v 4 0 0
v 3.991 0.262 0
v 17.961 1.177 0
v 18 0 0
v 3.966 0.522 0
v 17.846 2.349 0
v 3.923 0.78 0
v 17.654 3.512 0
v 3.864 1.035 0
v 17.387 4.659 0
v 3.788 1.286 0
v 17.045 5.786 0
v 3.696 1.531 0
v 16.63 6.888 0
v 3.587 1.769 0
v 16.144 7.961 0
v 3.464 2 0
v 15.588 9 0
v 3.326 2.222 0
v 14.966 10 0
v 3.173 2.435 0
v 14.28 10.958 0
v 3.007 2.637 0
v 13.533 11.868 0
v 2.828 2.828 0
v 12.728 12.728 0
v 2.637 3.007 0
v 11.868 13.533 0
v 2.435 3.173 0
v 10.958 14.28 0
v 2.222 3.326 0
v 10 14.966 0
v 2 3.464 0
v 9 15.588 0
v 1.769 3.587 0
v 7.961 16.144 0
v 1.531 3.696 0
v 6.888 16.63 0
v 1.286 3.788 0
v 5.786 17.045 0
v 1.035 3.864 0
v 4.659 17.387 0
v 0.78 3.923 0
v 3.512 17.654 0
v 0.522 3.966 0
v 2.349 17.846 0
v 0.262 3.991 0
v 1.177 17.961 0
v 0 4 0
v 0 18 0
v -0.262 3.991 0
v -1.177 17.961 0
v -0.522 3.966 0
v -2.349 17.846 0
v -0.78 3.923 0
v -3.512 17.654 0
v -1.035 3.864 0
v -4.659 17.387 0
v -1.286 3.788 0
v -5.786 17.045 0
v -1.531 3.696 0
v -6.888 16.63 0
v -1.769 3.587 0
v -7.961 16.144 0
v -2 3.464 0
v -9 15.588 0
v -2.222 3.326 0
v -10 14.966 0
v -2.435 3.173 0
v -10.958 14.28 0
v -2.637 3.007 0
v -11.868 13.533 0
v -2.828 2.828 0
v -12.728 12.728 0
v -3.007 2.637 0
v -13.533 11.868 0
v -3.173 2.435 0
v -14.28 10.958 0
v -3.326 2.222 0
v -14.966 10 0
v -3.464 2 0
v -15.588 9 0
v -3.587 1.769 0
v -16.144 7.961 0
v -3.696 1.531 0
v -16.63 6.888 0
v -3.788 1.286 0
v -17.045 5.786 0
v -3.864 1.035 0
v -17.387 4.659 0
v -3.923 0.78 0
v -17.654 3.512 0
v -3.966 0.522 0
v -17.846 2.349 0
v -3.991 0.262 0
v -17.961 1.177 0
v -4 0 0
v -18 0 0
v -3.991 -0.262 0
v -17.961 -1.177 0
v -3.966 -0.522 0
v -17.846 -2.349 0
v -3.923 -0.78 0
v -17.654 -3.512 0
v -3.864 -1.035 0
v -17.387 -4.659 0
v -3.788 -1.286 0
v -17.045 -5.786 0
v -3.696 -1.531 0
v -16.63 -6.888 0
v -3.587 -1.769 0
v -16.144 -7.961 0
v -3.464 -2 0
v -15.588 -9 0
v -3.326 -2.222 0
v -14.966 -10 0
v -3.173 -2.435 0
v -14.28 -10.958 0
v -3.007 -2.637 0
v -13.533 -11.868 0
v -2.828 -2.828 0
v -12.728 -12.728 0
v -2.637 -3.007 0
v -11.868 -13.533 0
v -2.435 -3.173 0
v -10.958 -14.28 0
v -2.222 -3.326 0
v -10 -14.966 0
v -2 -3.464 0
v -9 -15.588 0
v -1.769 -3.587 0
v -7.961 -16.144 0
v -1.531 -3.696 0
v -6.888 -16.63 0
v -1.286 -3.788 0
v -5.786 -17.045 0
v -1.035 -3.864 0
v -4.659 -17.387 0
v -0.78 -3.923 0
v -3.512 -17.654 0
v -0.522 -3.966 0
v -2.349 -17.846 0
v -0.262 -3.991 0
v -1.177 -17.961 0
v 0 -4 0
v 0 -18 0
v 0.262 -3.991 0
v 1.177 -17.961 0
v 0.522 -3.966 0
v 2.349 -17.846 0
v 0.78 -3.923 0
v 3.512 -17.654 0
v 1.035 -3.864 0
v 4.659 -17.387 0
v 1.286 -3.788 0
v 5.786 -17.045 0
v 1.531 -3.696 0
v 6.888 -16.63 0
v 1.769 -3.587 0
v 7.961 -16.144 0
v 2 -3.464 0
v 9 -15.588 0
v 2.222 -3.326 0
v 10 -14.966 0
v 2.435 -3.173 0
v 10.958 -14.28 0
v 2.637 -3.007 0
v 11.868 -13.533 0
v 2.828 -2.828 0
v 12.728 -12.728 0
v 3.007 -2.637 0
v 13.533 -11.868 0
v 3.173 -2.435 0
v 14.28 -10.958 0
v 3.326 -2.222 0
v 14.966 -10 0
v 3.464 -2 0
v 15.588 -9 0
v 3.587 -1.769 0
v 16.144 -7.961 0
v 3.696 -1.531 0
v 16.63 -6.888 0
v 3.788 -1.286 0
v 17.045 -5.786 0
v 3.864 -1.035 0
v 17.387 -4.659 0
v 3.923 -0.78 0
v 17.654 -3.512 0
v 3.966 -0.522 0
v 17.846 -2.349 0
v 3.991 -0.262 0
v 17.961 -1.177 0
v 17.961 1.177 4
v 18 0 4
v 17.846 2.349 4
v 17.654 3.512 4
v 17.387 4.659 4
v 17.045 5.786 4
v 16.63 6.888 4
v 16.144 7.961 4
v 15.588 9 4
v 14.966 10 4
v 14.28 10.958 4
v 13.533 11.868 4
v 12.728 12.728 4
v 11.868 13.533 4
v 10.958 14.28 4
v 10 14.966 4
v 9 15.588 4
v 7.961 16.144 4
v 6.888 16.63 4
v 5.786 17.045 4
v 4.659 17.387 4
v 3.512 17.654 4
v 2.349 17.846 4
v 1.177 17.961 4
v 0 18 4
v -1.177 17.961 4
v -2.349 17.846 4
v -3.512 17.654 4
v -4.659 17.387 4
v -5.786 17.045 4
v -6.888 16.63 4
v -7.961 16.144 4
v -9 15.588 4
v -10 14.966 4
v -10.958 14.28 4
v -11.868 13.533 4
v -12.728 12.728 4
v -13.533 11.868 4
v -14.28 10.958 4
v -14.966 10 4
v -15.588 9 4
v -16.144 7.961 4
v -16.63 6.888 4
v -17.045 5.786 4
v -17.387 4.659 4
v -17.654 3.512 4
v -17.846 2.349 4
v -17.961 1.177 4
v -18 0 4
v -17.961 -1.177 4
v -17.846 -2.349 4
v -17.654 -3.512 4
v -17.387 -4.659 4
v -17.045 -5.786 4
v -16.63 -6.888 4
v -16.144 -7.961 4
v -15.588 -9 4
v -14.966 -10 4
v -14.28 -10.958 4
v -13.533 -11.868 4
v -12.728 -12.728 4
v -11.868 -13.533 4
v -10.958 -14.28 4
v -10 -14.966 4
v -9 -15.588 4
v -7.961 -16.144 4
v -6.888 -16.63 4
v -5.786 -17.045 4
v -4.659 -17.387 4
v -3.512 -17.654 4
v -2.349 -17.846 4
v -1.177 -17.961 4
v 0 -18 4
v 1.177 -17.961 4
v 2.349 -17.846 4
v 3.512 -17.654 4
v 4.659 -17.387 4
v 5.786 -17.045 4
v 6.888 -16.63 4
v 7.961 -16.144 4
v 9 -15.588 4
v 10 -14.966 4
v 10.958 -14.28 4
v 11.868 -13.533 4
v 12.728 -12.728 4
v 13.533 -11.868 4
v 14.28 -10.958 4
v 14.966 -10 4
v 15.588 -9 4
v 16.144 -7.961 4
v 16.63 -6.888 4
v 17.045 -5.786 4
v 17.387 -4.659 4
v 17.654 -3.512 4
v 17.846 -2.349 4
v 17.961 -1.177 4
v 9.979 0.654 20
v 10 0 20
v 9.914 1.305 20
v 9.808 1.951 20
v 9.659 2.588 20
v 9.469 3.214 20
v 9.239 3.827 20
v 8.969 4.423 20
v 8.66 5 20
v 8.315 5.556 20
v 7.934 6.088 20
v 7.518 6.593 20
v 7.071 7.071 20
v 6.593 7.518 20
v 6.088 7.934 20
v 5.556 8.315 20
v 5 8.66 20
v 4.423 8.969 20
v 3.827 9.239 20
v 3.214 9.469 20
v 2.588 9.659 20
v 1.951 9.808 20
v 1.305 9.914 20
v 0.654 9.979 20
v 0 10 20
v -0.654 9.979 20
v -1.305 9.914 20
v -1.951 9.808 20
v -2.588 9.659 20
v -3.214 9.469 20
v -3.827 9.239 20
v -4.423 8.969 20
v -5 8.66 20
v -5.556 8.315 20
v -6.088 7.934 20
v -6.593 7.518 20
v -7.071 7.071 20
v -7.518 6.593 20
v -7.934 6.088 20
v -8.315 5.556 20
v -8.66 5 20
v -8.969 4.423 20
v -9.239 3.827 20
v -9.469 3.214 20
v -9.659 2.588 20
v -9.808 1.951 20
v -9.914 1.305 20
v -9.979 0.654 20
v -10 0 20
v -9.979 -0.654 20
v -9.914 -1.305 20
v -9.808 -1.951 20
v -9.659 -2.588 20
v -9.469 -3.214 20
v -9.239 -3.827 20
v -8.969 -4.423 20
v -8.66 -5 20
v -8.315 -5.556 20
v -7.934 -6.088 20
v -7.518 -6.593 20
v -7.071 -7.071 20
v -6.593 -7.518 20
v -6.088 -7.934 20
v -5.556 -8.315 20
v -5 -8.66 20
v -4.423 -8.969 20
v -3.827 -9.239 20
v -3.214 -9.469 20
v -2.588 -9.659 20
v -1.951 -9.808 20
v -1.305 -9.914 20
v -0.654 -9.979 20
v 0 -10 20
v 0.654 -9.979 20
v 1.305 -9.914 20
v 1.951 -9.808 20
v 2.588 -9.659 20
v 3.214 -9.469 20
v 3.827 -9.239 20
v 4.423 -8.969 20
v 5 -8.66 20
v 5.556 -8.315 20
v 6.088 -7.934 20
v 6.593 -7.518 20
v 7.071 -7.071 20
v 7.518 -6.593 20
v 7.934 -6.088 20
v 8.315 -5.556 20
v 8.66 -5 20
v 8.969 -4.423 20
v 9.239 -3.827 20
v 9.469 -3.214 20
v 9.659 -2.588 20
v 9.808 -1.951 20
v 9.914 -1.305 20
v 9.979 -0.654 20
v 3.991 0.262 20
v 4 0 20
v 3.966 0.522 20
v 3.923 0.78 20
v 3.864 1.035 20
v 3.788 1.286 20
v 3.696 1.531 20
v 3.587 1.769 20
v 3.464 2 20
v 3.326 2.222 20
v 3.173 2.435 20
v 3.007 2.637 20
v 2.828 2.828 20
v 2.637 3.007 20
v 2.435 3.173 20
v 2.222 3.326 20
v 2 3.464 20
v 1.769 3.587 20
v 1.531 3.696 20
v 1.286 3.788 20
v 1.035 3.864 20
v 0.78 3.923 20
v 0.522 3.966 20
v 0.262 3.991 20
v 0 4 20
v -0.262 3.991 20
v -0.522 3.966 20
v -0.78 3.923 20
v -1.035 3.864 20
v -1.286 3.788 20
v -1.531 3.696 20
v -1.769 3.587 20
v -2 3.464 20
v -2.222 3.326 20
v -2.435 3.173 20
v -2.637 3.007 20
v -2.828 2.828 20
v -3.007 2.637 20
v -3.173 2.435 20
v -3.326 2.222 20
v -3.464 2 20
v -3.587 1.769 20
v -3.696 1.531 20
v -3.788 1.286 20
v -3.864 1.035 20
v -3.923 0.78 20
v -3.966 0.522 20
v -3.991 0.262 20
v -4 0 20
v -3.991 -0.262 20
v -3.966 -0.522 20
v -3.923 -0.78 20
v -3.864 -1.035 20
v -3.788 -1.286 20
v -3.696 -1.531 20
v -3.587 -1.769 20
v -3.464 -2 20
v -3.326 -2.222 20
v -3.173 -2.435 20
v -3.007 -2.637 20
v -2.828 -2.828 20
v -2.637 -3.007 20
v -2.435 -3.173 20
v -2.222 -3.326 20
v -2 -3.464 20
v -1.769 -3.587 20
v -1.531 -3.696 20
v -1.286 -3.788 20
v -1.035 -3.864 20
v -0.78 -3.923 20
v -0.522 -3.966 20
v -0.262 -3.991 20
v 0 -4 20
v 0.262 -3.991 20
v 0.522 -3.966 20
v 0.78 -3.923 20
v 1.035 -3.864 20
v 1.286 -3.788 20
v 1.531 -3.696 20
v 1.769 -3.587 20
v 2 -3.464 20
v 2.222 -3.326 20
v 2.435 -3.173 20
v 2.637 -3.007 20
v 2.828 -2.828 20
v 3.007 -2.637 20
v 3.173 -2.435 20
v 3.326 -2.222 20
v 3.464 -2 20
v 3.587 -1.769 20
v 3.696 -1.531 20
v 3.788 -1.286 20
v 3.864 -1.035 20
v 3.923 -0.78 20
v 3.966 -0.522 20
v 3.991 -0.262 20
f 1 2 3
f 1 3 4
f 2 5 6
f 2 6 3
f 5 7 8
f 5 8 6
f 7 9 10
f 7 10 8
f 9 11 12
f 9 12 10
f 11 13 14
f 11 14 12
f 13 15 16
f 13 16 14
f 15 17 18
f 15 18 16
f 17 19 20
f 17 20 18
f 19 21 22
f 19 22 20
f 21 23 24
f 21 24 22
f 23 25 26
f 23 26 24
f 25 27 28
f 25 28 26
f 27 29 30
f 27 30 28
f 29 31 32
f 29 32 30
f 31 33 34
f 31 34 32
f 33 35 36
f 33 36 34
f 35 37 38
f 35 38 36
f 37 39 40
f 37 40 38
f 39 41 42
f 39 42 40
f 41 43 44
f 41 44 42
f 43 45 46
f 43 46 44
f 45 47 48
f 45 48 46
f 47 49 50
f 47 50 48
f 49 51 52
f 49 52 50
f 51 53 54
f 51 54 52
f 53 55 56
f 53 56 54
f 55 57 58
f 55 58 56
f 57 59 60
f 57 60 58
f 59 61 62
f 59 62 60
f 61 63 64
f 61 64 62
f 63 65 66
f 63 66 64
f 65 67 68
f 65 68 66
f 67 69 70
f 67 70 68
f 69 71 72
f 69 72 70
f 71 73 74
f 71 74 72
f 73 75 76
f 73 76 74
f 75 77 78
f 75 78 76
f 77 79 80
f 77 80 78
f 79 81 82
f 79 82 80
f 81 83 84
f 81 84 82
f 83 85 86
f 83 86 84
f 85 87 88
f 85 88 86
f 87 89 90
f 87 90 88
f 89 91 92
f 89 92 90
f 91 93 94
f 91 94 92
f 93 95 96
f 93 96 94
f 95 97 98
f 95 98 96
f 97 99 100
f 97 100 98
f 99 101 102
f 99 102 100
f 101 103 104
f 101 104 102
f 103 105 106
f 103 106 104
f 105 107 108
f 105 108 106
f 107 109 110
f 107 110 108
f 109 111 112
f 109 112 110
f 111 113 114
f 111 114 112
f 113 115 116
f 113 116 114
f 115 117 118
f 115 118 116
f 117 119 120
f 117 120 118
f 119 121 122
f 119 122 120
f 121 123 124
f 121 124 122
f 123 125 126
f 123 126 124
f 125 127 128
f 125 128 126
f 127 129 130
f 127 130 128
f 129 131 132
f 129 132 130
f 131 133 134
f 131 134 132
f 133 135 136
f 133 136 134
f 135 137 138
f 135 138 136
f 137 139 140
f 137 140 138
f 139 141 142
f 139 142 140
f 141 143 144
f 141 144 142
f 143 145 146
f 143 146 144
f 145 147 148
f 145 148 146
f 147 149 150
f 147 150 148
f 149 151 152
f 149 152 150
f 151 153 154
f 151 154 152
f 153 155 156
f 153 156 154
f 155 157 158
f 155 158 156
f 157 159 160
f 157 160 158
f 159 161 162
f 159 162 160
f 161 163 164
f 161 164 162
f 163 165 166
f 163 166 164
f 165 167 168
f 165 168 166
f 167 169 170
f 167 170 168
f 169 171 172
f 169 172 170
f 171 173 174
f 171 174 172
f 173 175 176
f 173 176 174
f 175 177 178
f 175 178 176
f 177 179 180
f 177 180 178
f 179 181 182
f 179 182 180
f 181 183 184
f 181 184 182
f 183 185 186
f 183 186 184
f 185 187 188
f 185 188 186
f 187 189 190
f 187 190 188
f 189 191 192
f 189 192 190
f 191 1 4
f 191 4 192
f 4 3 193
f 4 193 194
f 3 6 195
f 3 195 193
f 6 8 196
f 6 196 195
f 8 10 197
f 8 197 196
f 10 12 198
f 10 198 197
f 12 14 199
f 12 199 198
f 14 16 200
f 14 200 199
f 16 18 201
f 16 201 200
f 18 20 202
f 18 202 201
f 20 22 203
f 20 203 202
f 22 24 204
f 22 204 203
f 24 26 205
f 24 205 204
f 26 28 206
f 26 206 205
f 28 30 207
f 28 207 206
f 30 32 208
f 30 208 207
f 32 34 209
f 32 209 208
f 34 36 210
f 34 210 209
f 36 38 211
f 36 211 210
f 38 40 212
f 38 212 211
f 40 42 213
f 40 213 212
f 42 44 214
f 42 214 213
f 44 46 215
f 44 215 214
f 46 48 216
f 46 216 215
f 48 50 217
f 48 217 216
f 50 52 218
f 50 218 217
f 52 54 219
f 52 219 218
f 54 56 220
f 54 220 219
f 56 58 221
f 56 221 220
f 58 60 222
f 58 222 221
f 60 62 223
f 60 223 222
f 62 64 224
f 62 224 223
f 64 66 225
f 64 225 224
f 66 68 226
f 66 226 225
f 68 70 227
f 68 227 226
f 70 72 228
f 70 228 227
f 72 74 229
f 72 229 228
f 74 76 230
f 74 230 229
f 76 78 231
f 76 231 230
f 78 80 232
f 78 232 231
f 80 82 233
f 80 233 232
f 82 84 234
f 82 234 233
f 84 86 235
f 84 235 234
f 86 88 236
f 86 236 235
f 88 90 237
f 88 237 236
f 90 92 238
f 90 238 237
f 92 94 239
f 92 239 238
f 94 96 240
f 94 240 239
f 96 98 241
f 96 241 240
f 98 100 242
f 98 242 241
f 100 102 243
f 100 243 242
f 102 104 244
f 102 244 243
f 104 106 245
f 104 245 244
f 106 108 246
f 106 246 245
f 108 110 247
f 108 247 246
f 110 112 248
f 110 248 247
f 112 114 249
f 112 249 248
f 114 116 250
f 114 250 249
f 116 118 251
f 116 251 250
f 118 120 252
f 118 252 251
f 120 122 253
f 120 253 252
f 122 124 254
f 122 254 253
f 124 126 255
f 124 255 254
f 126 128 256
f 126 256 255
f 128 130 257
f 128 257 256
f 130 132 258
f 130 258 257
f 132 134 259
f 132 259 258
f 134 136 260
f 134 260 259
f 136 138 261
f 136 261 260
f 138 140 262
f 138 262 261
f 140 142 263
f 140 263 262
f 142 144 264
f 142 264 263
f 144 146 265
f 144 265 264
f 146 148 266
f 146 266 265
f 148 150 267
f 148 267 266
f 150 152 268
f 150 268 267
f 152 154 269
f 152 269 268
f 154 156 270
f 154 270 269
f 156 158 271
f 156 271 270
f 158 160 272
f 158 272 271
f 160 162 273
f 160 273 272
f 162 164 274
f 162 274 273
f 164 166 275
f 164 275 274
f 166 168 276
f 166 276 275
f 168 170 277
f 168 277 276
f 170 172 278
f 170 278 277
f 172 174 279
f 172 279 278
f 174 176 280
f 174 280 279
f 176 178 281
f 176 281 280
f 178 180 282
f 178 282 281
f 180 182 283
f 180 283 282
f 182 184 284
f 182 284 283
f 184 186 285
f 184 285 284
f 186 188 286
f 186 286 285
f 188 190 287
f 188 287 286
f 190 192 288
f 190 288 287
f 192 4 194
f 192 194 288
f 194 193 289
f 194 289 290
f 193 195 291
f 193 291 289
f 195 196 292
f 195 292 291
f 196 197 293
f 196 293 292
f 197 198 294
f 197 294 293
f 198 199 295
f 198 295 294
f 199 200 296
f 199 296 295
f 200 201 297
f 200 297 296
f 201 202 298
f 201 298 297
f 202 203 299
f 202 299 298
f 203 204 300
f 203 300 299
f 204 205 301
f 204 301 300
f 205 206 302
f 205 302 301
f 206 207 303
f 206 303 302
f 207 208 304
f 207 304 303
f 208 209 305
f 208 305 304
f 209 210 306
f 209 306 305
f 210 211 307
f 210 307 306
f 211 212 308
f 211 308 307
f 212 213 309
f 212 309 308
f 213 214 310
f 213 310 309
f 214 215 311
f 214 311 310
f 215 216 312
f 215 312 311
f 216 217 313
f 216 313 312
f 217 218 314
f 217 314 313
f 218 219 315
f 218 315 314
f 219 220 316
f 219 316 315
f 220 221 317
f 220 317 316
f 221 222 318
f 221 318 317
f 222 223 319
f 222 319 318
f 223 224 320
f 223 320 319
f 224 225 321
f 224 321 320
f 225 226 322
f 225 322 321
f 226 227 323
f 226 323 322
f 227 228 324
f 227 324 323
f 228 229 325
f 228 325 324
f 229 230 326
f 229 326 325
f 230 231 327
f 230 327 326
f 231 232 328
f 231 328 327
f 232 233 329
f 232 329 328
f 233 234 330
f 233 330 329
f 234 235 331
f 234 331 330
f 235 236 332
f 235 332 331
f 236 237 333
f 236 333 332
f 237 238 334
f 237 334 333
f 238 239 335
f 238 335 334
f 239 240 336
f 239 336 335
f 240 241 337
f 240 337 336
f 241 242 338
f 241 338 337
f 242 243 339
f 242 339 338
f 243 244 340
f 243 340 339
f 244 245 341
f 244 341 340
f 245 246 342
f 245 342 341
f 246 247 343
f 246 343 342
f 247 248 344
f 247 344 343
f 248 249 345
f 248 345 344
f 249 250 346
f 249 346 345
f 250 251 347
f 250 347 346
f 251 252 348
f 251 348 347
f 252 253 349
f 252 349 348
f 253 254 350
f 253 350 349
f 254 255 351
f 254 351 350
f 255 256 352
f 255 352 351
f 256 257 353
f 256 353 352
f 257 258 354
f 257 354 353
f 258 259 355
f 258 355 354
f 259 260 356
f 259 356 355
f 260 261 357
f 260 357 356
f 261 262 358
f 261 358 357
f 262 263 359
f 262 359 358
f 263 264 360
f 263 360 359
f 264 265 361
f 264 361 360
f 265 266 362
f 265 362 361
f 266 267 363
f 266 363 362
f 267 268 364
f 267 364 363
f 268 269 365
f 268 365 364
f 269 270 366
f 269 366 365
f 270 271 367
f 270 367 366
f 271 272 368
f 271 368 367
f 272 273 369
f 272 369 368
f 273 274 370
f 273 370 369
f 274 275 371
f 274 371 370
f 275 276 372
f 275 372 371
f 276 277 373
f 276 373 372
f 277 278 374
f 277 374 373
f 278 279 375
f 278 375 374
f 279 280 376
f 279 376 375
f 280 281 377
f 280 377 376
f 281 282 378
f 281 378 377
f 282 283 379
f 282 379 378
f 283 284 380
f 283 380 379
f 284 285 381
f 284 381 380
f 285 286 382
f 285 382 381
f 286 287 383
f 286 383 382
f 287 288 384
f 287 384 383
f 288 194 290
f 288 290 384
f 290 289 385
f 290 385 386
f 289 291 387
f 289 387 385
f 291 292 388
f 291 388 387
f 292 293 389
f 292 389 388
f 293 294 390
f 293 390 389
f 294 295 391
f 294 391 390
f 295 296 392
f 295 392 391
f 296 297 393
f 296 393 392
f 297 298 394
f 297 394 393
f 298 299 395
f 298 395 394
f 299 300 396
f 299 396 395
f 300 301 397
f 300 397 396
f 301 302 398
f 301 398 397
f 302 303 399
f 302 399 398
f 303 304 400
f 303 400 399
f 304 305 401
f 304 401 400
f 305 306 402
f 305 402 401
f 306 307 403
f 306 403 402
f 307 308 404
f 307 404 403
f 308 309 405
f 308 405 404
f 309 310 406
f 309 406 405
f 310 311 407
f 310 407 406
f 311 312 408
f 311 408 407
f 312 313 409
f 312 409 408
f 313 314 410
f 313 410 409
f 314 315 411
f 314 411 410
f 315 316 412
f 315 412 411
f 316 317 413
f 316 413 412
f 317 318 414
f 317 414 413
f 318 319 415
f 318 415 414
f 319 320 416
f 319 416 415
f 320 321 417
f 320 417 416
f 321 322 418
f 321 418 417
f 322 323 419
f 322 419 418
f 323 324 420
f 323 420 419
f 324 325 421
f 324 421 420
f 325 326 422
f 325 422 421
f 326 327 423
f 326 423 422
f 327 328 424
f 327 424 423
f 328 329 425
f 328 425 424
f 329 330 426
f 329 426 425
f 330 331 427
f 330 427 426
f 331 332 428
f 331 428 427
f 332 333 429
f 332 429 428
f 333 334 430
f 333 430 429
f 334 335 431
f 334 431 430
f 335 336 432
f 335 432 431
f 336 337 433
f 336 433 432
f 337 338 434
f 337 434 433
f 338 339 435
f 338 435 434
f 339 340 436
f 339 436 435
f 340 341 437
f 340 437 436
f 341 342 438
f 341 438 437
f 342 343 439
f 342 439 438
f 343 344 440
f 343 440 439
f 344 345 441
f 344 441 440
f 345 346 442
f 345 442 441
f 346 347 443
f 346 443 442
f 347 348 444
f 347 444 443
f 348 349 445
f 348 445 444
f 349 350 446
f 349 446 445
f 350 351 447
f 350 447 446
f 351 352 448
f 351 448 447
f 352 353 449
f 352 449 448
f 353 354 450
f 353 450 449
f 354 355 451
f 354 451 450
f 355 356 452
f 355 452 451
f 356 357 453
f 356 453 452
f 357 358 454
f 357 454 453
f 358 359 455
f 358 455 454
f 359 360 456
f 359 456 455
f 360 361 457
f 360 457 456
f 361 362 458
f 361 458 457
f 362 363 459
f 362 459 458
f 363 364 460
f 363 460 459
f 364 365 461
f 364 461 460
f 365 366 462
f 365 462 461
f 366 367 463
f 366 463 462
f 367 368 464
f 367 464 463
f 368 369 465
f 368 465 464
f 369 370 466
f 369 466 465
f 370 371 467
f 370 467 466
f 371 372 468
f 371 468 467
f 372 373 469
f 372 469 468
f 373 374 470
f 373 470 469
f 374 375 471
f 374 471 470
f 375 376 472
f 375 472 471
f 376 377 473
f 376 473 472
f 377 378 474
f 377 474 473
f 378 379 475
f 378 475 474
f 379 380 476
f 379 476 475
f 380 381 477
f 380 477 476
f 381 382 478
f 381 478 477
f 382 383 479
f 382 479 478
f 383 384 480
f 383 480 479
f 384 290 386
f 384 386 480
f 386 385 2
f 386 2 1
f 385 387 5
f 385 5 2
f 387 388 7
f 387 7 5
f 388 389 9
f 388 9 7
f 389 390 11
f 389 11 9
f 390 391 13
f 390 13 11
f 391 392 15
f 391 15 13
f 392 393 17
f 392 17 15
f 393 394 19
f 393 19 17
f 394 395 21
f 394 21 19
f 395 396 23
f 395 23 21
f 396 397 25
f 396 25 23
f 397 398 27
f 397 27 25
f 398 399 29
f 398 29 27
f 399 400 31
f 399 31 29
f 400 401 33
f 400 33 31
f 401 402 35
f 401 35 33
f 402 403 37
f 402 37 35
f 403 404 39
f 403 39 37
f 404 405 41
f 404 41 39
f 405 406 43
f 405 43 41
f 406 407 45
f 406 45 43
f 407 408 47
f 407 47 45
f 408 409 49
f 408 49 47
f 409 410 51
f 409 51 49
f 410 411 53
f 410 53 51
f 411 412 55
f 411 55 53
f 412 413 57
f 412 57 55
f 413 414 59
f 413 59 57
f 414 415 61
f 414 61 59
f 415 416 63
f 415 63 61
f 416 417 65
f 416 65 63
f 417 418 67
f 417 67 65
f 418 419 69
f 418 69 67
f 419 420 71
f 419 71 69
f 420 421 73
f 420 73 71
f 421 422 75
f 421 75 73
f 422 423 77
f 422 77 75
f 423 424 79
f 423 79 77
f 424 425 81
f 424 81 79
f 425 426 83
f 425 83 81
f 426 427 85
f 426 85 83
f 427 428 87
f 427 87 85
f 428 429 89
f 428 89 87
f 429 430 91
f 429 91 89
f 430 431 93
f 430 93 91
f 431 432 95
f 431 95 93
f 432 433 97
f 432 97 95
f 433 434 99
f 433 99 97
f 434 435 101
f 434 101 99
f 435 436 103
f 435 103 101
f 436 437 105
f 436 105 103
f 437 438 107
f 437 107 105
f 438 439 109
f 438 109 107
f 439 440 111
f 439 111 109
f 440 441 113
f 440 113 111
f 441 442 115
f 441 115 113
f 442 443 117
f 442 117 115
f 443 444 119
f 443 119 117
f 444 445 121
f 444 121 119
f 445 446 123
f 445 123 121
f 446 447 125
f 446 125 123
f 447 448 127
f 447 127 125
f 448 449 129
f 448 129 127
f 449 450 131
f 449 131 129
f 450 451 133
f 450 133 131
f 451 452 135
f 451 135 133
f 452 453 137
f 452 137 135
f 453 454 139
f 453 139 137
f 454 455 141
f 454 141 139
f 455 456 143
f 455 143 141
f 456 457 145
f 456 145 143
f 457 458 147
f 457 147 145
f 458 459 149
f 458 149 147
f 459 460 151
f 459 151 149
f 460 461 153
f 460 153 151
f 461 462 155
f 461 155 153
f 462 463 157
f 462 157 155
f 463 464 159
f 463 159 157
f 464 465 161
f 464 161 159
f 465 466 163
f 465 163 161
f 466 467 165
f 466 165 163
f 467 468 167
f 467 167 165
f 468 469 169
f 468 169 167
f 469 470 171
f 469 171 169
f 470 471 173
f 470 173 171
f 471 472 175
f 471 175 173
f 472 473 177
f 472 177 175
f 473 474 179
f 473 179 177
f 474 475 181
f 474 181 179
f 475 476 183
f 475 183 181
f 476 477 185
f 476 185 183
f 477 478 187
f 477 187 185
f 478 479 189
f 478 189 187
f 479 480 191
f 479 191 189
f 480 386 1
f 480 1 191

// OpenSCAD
// Original MechIntel educational model. CC0-1.0. Units: mm.
// Not a standardized or load-rated component.
$fn=96;
// Section points: [radius, height], mm. Edit to change the profile.
section=[[4, 0], [18, 0], [18, 4], [10, 20], [4, 20]];
rotate_extrude($fn=96) polygon(points=section);
